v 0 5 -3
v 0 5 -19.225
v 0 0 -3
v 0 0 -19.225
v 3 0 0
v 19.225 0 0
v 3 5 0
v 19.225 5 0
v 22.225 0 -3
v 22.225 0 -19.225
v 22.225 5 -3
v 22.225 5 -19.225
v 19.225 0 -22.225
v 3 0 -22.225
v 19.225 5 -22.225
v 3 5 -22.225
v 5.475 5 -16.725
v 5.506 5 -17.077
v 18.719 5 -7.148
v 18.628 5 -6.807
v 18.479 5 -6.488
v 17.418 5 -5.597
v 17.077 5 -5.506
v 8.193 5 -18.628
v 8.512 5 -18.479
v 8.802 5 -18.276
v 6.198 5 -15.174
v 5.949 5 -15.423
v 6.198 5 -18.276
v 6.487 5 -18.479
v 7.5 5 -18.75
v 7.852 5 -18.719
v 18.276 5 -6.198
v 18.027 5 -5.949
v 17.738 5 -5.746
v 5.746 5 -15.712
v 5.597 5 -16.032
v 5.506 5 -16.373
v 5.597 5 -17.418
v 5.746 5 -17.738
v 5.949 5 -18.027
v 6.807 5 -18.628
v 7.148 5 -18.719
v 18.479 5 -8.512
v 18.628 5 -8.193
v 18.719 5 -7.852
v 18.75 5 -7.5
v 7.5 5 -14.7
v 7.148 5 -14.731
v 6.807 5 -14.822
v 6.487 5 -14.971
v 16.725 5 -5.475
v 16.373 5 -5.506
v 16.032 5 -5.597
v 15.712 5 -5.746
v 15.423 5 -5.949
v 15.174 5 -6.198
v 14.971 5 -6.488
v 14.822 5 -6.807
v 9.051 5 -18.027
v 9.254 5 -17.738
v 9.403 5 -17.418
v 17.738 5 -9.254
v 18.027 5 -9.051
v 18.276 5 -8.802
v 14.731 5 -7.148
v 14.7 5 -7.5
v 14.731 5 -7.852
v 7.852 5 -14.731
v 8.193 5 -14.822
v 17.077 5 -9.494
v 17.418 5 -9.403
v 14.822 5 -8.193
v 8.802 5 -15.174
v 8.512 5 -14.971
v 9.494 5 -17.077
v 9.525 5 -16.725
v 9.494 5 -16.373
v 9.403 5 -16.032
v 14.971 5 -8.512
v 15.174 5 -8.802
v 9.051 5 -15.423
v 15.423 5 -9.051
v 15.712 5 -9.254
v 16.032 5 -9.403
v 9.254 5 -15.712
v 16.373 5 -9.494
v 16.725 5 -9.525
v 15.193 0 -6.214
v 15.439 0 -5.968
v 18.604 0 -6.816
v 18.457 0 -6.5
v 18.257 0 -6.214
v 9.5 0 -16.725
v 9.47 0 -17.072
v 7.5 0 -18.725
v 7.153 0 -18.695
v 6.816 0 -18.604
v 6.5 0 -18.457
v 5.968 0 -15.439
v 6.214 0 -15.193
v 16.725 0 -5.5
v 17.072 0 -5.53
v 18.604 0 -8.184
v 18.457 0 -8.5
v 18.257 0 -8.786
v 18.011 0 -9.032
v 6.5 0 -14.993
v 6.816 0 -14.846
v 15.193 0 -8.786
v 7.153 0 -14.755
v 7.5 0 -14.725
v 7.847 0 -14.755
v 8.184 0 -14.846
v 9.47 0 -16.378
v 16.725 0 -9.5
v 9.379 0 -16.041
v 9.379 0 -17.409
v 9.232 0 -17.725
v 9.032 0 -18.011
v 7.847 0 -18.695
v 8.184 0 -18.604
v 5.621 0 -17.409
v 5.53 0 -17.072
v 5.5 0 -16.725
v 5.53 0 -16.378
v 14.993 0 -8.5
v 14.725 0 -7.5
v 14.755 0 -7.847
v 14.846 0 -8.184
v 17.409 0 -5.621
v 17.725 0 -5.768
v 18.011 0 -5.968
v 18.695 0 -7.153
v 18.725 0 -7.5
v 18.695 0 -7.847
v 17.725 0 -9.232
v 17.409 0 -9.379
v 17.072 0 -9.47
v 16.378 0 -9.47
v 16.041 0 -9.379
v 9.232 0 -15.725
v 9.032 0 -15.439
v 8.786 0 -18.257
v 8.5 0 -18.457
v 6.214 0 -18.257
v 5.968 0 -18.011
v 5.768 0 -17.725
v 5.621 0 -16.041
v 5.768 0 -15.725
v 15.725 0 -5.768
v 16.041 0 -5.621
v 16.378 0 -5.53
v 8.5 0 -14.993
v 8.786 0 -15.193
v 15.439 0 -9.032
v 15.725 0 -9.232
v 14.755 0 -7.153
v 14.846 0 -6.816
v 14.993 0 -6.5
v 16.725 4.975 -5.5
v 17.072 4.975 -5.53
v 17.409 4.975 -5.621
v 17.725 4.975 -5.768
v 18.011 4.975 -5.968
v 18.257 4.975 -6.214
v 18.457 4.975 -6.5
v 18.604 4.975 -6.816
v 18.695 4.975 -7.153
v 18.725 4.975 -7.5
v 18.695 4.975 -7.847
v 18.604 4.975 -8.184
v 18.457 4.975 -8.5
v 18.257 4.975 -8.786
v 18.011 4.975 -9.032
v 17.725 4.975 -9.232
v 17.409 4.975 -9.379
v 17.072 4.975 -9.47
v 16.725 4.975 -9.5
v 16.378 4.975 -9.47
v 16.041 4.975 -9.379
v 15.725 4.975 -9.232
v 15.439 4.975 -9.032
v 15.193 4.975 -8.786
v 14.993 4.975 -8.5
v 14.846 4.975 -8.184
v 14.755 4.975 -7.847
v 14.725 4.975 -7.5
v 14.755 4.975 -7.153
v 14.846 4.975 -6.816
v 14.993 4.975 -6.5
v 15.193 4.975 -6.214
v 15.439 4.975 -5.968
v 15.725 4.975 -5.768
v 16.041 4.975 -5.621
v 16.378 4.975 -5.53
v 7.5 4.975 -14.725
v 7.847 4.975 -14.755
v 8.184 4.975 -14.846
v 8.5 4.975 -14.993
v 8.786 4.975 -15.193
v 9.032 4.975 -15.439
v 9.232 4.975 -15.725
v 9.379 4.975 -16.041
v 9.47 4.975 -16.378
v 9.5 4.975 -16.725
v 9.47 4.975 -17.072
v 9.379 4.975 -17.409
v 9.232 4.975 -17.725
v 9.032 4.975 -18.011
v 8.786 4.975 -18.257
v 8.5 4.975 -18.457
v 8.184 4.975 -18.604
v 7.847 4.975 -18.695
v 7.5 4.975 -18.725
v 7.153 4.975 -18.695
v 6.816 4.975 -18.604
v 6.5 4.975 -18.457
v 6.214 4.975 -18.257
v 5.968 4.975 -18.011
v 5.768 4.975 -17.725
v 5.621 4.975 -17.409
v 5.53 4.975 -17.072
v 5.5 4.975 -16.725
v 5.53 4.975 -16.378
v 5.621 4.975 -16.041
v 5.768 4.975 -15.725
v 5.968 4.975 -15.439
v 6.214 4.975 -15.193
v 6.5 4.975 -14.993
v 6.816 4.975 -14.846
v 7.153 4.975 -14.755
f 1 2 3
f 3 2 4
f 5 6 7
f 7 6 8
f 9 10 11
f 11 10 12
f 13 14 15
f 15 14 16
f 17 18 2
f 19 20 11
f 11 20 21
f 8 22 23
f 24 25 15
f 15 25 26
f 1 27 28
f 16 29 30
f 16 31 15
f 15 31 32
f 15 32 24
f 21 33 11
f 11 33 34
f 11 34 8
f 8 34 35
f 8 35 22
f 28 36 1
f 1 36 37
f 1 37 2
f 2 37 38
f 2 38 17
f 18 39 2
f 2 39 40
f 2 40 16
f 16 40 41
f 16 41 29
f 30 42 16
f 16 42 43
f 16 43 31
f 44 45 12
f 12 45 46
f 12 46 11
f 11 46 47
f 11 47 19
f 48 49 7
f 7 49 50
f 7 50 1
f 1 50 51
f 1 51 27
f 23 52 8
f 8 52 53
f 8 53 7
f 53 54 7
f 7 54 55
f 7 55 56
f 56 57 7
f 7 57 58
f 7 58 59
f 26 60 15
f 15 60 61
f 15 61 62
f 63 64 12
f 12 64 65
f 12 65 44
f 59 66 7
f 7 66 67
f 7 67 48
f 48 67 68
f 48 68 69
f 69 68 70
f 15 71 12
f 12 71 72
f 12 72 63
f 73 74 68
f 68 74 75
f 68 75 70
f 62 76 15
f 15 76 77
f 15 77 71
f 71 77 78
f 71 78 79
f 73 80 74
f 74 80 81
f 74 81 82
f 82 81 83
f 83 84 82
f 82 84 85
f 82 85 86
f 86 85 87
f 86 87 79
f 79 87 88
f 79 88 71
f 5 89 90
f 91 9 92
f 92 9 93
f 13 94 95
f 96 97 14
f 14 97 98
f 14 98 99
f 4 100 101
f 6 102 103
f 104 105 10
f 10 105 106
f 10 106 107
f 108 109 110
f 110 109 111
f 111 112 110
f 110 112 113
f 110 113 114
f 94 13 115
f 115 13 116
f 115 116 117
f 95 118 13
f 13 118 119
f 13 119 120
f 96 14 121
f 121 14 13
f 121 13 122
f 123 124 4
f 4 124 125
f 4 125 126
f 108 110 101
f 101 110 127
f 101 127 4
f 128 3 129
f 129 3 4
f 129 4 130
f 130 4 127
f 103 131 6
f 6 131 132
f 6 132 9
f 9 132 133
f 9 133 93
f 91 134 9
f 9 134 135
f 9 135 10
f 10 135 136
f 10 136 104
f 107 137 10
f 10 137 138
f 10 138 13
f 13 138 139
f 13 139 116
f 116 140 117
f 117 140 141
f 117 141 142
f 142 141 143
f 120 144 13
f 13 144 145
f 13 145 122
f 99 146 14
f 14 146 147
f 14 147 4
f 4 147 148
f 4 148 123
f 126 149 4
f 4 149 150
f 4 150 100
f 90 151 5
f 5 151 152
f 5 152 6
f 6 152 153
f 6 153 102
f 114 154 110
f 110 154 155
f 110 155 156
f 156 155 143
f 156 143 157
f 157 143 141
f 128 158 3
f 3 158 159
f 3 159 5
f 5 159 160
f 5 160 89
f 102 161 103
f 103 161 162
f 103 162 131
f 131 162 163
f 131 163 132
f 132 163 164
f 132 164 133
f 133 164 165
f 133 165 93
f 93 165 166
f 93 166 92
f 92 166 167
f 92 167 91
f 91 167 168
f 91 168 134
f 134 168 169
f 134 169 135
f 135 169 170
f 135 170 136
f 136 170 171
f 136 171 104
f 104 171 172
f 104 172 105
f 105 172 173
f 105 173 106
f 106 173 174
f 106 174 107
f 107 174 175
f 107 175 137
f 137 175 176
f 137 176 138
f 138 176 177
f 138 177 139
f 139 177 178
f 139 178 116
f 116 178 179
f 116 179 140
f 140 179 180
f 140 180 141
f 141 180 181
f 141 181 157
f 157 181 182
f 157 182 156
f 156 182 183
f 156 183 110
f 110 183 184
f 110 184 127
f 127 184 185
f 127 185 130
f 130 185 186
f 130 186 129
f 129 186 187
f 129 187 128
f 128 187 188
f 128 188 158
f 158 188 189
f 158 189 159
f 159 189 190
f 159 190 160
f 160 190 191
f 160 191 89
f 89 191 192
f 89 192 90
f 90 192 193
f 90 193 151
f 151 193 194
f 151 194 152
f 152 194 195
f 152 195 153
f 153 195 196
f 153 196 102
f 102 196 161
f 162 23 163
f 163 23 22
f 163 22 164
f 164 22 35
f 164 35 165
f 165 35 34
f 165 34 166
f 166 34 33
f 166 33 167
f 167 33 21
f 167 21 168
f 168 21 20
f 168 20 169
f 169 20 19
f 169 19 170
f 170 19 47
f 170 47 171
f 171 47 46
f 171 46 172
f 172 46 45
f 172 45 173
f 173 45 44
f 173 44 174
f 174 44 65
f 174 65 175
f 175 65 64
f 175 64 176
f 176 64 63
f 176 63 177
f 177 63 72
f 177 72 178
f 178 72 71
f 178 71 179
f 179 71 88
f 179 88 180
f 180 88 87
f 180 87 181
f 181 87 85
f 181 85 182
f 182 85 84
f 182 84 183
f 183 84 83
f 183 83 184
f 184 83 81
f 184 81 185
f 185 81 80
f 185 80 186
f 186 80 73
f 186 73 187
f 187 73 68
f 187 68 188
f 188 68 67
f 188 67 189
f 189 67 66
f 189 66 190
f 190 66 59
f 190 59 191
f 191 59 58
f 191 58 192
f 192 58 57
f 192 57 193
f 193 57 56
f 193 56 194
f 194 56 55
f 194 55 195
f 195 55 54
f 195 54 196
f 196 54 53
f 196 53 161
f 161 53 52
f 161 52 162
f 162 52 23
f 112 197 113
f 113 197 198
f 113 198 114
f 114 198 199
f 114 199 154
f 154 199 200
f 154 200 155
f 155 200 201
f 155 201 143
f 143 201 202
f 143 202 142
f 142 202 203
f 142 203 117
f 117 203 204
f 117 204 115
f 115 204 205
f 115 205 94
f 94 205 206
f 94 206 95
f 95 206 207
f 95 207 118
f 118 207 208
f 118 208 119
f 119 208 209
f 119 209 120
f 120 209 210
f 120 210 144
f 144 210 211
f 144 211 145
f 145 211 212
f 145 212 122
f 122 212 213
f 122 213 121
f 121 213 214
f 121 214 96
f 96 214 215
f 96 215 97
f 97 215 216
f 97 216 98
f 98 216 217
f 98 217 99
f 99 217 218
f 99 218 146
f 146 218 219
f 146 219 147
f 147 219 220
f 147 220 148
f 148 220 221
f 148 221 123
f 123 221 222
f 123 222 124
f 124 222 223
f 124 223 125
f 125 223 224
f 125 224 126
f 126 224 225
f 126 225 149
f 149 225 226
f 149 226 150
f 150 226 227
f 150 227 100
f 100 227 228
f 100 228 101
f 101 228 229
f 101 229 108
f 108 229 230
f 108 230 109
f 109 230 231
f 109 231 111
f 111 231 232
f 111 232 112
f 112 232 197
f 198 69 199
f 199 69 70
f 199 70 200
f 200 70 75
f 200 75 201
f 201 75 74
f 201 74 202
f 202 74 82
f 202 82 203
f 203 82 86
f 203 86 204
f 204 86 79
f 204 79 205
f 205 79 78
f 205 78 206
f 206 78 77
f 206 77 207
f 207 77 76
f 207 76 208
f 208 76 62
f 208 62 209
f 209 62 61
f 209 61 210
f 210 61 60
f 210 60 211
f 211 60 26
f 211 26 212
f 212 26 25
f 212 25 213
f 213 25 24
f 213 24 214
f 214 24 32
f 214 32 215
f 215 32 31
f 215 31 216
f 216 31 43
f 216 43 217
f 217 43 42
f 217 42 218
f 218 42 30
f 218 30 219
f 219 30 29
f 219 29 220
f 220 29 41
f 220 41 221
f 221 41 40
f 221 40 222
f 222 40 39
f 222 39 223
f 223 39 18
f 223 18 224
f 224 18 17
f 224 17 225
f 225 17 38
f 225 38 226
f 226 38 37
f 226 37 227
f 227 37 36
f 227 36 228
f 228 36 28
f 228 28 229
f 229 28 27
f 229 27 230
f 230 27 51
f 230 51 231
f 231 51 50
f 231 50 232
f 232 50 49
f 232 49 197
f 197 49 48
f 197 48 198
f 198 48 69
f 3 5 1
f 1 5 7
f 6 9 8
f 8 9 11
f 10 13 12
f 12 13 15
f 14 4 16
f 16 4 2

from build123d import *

# Parameters (mm, degrees)
SKETCH1_W                       = 22.225
SKETCH1_H                       = 22.225
BOSS_EXTRUDE1_DEPTH             = 5
F_4_0MM_DOWEL_HOLE3_D           = 4
F_4_0MM_DOWEL_HOLE3_CSINK_D     = 4.05
F_4_0MM_DOWEL_HOLE3_CSINK_ANGLE = 90
CHAMFER1_SIZE                   = 3


with BuildPart() as part:
    # Sketch1 → Boss-Extrude1 (new body)
    with BuildSketch(Plane(origin=(0, 0, 0), x_dir=(1, 0, 0), z_dir=(0, 1, 0))):
        with Locations((11.1125, 11.1125)):
            Rectangle(SKETCH1_W, SKETCH1_H)
    extrude(amount=BOSS_EXTRUDE1_DEPTH)

    # Ø4.0mm Dowel Hole3 (through all)
    with Locations(Plane(origin=(0, 5, 0), x_dir=(1, 0, 0), z_dir=(0, 1, 0))):
        with Locations((7.5, 16.725), (16.725, 7.5)):
            CounterSinkHole(F_4_0MM_DOWEL_HOLE3_D / 2, F_4_0MM_DOWEL_HOLE3_CSINK_D / 2, counter_sink_angle=F_4_0MM_DOWEL_HOLE3_CSINK_ANGLE)

    # Chamfer1
    chamfer1_edges = [part.edges().sort_by_distance(p)[0] for p in [
        (0, 2.5, -22.225),
        (22.225, 2.5, -22.225),
        (22.225, 2.5, 0),
        (0, 2.5, 0),
    ]]
    chamfer(chamfer1_edges, length=CHAMFER1_SIZE)


solid = part.part
